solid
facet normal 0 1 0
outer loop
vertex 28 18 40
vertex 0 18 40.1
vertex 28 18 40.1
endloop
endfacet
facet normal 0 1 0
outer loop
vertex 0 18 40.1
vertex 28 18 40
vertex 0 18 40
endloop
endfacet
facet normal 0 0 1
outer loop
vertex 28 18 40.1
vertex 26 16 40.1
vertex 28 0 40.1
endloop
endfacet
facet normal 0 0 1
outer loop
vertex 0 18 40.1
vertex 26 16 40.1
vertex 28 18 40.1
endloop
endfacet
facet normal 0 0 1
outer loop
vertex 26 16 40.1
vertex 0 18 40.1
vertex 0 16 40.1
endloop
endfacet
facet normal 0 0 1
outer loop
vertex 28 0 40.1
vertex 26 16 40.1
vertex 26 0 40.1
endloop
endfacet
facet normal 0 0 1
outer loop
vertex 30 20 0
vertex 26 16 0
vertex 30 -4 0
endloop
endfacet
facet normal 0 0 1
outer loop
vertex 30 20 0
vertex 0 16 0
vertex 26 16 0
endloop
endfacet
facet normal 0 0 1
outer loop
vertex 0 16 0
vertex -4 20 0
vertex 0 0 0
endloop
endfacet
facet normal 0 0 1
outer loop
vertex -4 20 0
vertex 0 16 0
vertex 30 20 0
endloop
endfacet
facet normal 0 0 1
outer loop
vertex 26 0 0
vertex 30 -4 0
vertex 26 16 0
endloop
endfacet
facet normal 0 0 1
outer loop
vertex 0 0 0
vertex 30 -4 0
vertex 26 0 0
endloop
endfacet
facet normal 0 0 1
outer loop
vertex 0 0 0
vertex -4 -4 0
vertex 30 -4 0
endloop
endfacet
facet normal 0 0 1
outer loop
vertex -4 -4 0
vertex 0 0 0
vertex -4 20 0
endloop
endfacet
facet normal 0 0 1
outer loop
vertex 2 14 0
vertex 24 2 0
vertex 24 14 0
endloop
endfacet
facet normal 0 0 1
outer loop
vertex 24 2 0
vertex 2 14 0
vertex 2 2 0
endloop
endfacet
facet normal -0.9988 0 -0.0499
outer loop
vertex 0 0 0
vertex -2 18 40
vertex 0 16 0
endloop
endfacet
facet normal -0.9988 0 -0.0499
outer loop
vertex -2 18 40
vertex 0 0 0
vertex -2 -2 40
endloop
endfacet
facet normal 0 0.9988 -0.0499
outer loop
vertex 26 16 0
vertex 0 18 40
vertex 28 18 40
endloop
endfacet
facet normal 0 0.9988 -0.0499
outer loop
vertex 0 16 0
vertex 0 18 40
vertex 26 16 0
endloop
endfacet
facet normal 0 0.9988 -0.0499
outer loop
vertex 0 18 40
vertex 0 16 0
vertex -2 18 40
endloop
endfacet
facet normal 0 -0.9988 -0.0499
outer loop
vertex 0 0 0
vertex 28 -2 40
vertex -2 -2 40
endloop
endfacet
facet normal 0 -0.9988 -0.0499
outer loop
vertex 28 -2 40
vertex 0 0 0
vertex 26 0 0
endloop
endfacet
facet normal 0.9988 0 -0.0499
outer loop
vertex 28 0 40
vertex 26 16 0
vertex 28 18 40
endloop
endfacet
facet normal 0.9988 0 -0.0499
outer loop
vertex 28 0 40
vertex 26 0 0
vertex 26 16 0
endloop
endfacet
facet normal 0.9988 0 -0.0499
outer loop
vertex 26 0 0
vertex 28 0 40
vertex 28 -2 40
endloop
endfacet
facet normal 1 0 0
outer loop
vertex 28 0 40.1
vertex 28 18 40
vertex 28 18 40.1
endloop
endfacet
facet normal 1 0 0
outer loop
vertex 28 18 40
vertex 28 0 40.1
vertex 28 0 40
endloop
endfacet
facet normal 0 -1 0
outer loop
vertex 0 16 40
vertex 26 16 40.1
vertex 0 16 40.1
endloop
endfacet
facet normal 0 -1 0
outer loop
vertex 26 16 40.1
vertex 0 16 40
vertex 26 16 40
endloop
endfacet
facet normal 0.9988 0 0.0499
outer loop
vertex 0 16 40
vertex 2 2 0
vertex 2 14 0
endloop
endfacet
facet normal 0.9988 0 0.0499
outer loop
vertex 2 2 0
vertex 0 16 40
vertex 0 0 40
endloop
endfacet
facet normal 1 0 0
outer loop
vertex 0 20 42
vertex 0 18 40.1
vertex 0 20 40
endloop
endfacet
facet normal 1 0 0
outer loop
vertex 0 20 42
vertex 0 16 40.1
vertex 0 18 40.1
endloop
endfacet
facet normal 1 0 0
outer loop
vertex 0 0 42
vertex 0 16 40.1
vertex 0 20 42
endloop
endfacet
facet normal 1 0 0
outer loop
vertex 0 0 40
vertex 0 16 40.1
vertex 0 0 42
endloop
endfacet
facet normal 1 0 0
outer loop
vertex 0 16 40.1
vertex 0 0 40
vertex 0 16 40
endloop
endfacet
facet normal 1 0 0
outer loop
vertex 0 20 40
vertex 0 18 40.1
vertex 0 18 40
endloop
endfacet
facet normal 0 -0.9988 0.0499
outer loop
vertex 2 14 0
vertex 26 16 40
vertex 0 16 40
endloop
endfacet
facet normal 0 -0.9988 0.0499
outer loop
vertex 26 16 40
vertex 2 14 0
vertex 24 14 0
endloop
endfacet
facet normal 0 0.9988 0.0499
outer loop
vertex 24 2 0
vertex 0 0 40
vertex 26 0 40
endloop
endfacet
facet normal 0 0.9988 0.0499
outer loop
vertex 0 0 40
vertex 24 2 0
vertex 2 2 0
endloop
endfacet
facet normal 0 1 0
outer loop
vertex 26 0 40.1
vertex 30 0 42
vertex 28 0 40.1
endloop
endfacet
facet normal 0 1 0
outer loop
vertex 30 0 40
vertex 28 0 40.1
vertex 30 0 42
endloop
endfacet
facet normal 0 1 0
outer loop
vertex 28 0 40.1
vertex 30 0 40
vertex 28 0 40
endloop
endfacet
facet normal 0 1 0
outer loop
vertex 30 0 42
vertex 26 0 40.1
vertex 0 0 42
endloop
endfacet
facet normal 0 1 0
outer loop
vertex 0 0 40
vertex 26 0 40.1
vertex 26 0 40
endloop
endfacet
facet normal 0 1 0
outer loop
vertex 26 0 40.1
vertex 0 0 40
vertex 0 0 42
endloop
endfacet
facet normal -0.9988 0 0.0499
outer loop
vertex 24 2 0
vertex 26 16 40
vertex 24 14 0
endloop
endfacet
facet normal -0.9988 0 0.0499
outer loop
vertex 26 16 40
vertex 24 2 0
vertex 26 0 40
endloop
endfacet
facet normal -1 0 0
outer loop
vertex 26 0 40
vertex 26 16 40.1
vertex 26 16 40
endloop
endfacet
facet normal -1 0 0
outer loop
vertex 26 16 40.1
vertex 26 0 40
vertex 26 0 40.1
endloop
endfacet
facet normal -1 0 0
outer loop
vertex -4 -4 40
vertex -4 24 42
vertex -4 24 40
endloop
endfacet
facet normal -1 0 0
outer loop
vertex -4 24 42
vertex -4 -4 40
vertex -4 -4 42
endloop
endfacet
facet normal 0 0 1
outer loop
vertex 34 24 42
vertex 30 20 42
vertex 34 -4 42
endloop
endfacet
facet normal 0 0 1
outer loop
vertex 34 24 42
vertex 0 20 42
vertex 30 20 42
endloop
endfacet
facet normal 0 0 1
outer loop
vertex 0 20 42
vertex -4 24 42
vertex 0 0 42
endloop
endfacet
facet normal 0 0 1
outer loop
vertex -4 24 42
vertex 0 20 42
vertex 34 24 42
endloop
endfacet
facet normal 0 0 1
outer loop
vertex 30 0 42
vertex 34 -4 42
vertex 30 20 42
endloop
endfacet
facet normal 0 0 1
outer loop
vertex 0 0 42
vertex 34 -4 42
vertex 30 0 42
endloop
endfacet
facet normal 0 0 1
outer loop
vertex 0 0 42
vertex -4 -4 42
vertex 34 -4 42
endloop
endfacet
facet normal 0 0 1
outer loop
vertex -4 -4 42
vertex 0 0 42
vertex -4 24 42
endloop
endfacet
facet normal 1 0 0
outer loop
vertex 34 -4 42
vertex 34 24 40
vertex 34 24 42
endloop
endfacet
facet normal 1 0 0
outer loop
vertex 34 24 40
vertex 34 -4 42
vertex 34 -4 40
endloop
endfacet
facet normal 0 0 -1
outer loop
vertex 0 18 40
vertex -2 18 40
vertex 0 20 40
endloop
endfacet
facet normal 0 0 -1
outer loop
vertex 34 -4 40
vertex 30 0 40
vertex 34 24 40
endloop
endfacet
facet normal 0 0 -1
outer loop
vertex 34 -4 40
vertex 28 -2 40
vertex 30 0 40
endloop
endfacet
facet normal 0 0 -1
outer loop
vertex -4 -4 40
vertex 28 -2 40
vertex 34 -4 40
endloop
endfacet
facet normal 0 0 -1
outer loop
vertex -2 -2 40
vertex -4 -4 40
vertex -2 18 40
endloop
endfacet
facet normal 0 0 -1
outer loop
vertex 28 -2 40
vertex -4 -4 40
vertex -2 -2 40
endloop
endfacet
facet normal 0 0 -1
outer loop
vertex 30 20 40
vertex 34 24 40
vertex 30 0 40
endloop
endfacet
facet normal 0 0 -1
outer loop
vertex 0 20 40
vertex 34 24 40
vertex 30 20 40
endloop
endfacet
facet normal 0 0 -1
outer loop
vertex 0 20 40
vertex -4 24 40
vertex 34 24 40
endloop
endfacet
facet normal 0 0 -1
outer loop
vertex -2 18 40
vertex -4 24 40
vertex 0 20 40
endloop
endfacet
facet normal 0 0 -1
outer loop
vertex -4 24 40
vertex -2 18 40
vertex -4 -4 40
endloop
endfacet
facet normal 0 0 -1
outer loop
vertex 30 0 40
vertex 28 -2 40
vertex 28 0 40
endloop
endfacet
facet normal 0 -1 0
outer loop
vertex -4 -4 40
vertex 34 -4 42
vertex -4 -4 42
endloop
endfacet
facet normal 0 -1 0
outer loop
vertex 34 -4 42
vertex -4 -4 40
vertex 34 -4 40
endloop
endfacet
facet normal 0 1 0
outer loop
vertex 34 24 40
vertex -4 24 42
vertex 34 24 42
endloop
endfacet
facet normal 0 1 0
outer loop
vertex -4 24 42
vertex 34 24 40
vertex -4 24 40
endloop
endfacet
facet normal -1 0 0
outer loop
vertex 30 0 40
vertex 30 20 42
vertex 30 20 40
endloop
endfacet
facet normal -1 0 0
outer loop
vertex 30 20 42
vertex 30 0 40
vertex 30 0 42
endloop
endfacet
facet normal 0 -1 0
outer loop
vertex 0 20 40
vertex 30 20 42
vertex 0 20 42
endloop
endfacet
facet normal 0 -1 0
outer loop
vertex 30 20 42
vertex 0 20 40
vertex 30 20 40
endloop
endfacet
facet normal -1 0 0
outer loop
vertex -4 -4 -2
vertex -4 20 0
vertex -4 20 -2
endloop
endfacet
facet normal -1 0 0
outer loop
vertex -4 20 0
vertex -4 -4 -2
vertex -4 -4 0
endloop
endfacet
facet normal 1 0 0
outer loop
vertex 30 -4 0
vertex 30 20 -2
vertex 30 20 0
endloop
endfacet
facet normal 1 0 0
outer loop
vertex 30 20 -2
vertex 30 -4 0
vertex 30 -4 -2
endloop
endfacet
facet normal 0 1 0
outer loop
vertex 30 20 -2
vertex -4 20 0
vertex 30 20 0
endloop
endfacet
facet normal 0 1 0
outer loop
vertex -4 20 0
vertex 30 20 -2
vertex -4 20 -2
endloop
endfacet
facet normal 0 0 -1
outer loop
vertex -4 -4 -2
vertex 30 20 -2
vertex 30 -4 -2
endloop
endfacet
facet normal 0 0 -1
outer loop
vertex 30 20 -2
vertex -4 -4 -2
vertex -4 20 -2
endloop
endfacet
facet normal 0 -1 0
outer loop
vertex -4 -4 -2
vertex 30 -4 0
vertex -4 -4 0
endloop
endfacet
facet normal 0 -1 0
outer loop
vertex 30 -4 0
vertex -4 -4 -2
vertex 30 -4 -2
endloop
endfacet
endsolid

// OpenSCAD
// Parameters
shell_height = 40;
shell_top_x = 30;
shell_top_y = 20;
shell_bottom_x = 26;
shell_bottom_y = 16;
wall_thickness = 2;
flange_thickness = 2;
flange_extension = 4;

// Outer tapered shell
module outer_rectangular_shell() {
    difference() {
        // Outer tapered shell
        hull() {
            translate([0, 0, 0])
                cube([shell_bottom_x, shell_bottom_y, shell_height], center = false);
            translate([-(shell_top_x - shell_bottom_x)/2, -(shell_top_y - shell_bottom_y)/2, shell_height])
                cube([shell_top_x, shell_top_y, 0.1], center = false);
        }
        // Inner hollow
        hull() {
            translate([wall_thickness, wall_thickness, 0])
                cube([shell_bottom_x - 2*wall_thickness, shell_bottom_y - 2*wall_thickness, shell_height], center = false);
            translate([-(shell_top_x - shell_bottom_x)/2 + wall_thickness, -(shell_top_y - shell_bottom_y)/2 + wall_thickness, shell_height])
                cube([shell_top_x - 2*wall_thickness, shell_top_y - 2*wall_thickness, 0.1], center = false);
        }
    }
}

// Top flange
module top_flange_frame() {
    difference() {
        translate([-(flange_extension), -(flange_extension), shell_height])
            cube([shell_top_x + 2*flange_extension, shell_top_y + 2*flange_extension, flange_thickness]);
        translate([0, 0, shell_height])
            cube([shell_top_x, shell_top_y, flange_thickness]);
    }
}

// Bottom flange
module bottom_flange_base() {
    difference() {
        translate([-(flange_extension), -(flange_extension), -flange_thickness])
            cube([shell_bottom_x + 2*flange_extension, shell_bottom_y + 2*flange_extension, flange_thickness]);
        // No cutout needed, it's a solid base
    }
}

// Inner slanted wall
module inner_slanted_wall_panel() {
    polyhedron(
        points=[
            [wall_thickness, wall_thickness, 0],  // bottom front-left
            [shell_bottom_x - wall_thickness, wall_thickness, 0],  // bottom front-right
            [shell_top_x - wall_thickness, shell_top_y - wall_thickness, shell_height],  // top back-right
            [wall_thickness, shell_top_y - wall_thickness, shell_height]  // top back-left
        ],
        faces=[
            [0, 1, 2, 3]
        ]
    );
}

// Assemble the model
module full_model() {
    outer_rectangular_shell();
    top_flange_frame();
    bottom_flange_base();
    inner_slanted_wall_panel();
}

full_model();
